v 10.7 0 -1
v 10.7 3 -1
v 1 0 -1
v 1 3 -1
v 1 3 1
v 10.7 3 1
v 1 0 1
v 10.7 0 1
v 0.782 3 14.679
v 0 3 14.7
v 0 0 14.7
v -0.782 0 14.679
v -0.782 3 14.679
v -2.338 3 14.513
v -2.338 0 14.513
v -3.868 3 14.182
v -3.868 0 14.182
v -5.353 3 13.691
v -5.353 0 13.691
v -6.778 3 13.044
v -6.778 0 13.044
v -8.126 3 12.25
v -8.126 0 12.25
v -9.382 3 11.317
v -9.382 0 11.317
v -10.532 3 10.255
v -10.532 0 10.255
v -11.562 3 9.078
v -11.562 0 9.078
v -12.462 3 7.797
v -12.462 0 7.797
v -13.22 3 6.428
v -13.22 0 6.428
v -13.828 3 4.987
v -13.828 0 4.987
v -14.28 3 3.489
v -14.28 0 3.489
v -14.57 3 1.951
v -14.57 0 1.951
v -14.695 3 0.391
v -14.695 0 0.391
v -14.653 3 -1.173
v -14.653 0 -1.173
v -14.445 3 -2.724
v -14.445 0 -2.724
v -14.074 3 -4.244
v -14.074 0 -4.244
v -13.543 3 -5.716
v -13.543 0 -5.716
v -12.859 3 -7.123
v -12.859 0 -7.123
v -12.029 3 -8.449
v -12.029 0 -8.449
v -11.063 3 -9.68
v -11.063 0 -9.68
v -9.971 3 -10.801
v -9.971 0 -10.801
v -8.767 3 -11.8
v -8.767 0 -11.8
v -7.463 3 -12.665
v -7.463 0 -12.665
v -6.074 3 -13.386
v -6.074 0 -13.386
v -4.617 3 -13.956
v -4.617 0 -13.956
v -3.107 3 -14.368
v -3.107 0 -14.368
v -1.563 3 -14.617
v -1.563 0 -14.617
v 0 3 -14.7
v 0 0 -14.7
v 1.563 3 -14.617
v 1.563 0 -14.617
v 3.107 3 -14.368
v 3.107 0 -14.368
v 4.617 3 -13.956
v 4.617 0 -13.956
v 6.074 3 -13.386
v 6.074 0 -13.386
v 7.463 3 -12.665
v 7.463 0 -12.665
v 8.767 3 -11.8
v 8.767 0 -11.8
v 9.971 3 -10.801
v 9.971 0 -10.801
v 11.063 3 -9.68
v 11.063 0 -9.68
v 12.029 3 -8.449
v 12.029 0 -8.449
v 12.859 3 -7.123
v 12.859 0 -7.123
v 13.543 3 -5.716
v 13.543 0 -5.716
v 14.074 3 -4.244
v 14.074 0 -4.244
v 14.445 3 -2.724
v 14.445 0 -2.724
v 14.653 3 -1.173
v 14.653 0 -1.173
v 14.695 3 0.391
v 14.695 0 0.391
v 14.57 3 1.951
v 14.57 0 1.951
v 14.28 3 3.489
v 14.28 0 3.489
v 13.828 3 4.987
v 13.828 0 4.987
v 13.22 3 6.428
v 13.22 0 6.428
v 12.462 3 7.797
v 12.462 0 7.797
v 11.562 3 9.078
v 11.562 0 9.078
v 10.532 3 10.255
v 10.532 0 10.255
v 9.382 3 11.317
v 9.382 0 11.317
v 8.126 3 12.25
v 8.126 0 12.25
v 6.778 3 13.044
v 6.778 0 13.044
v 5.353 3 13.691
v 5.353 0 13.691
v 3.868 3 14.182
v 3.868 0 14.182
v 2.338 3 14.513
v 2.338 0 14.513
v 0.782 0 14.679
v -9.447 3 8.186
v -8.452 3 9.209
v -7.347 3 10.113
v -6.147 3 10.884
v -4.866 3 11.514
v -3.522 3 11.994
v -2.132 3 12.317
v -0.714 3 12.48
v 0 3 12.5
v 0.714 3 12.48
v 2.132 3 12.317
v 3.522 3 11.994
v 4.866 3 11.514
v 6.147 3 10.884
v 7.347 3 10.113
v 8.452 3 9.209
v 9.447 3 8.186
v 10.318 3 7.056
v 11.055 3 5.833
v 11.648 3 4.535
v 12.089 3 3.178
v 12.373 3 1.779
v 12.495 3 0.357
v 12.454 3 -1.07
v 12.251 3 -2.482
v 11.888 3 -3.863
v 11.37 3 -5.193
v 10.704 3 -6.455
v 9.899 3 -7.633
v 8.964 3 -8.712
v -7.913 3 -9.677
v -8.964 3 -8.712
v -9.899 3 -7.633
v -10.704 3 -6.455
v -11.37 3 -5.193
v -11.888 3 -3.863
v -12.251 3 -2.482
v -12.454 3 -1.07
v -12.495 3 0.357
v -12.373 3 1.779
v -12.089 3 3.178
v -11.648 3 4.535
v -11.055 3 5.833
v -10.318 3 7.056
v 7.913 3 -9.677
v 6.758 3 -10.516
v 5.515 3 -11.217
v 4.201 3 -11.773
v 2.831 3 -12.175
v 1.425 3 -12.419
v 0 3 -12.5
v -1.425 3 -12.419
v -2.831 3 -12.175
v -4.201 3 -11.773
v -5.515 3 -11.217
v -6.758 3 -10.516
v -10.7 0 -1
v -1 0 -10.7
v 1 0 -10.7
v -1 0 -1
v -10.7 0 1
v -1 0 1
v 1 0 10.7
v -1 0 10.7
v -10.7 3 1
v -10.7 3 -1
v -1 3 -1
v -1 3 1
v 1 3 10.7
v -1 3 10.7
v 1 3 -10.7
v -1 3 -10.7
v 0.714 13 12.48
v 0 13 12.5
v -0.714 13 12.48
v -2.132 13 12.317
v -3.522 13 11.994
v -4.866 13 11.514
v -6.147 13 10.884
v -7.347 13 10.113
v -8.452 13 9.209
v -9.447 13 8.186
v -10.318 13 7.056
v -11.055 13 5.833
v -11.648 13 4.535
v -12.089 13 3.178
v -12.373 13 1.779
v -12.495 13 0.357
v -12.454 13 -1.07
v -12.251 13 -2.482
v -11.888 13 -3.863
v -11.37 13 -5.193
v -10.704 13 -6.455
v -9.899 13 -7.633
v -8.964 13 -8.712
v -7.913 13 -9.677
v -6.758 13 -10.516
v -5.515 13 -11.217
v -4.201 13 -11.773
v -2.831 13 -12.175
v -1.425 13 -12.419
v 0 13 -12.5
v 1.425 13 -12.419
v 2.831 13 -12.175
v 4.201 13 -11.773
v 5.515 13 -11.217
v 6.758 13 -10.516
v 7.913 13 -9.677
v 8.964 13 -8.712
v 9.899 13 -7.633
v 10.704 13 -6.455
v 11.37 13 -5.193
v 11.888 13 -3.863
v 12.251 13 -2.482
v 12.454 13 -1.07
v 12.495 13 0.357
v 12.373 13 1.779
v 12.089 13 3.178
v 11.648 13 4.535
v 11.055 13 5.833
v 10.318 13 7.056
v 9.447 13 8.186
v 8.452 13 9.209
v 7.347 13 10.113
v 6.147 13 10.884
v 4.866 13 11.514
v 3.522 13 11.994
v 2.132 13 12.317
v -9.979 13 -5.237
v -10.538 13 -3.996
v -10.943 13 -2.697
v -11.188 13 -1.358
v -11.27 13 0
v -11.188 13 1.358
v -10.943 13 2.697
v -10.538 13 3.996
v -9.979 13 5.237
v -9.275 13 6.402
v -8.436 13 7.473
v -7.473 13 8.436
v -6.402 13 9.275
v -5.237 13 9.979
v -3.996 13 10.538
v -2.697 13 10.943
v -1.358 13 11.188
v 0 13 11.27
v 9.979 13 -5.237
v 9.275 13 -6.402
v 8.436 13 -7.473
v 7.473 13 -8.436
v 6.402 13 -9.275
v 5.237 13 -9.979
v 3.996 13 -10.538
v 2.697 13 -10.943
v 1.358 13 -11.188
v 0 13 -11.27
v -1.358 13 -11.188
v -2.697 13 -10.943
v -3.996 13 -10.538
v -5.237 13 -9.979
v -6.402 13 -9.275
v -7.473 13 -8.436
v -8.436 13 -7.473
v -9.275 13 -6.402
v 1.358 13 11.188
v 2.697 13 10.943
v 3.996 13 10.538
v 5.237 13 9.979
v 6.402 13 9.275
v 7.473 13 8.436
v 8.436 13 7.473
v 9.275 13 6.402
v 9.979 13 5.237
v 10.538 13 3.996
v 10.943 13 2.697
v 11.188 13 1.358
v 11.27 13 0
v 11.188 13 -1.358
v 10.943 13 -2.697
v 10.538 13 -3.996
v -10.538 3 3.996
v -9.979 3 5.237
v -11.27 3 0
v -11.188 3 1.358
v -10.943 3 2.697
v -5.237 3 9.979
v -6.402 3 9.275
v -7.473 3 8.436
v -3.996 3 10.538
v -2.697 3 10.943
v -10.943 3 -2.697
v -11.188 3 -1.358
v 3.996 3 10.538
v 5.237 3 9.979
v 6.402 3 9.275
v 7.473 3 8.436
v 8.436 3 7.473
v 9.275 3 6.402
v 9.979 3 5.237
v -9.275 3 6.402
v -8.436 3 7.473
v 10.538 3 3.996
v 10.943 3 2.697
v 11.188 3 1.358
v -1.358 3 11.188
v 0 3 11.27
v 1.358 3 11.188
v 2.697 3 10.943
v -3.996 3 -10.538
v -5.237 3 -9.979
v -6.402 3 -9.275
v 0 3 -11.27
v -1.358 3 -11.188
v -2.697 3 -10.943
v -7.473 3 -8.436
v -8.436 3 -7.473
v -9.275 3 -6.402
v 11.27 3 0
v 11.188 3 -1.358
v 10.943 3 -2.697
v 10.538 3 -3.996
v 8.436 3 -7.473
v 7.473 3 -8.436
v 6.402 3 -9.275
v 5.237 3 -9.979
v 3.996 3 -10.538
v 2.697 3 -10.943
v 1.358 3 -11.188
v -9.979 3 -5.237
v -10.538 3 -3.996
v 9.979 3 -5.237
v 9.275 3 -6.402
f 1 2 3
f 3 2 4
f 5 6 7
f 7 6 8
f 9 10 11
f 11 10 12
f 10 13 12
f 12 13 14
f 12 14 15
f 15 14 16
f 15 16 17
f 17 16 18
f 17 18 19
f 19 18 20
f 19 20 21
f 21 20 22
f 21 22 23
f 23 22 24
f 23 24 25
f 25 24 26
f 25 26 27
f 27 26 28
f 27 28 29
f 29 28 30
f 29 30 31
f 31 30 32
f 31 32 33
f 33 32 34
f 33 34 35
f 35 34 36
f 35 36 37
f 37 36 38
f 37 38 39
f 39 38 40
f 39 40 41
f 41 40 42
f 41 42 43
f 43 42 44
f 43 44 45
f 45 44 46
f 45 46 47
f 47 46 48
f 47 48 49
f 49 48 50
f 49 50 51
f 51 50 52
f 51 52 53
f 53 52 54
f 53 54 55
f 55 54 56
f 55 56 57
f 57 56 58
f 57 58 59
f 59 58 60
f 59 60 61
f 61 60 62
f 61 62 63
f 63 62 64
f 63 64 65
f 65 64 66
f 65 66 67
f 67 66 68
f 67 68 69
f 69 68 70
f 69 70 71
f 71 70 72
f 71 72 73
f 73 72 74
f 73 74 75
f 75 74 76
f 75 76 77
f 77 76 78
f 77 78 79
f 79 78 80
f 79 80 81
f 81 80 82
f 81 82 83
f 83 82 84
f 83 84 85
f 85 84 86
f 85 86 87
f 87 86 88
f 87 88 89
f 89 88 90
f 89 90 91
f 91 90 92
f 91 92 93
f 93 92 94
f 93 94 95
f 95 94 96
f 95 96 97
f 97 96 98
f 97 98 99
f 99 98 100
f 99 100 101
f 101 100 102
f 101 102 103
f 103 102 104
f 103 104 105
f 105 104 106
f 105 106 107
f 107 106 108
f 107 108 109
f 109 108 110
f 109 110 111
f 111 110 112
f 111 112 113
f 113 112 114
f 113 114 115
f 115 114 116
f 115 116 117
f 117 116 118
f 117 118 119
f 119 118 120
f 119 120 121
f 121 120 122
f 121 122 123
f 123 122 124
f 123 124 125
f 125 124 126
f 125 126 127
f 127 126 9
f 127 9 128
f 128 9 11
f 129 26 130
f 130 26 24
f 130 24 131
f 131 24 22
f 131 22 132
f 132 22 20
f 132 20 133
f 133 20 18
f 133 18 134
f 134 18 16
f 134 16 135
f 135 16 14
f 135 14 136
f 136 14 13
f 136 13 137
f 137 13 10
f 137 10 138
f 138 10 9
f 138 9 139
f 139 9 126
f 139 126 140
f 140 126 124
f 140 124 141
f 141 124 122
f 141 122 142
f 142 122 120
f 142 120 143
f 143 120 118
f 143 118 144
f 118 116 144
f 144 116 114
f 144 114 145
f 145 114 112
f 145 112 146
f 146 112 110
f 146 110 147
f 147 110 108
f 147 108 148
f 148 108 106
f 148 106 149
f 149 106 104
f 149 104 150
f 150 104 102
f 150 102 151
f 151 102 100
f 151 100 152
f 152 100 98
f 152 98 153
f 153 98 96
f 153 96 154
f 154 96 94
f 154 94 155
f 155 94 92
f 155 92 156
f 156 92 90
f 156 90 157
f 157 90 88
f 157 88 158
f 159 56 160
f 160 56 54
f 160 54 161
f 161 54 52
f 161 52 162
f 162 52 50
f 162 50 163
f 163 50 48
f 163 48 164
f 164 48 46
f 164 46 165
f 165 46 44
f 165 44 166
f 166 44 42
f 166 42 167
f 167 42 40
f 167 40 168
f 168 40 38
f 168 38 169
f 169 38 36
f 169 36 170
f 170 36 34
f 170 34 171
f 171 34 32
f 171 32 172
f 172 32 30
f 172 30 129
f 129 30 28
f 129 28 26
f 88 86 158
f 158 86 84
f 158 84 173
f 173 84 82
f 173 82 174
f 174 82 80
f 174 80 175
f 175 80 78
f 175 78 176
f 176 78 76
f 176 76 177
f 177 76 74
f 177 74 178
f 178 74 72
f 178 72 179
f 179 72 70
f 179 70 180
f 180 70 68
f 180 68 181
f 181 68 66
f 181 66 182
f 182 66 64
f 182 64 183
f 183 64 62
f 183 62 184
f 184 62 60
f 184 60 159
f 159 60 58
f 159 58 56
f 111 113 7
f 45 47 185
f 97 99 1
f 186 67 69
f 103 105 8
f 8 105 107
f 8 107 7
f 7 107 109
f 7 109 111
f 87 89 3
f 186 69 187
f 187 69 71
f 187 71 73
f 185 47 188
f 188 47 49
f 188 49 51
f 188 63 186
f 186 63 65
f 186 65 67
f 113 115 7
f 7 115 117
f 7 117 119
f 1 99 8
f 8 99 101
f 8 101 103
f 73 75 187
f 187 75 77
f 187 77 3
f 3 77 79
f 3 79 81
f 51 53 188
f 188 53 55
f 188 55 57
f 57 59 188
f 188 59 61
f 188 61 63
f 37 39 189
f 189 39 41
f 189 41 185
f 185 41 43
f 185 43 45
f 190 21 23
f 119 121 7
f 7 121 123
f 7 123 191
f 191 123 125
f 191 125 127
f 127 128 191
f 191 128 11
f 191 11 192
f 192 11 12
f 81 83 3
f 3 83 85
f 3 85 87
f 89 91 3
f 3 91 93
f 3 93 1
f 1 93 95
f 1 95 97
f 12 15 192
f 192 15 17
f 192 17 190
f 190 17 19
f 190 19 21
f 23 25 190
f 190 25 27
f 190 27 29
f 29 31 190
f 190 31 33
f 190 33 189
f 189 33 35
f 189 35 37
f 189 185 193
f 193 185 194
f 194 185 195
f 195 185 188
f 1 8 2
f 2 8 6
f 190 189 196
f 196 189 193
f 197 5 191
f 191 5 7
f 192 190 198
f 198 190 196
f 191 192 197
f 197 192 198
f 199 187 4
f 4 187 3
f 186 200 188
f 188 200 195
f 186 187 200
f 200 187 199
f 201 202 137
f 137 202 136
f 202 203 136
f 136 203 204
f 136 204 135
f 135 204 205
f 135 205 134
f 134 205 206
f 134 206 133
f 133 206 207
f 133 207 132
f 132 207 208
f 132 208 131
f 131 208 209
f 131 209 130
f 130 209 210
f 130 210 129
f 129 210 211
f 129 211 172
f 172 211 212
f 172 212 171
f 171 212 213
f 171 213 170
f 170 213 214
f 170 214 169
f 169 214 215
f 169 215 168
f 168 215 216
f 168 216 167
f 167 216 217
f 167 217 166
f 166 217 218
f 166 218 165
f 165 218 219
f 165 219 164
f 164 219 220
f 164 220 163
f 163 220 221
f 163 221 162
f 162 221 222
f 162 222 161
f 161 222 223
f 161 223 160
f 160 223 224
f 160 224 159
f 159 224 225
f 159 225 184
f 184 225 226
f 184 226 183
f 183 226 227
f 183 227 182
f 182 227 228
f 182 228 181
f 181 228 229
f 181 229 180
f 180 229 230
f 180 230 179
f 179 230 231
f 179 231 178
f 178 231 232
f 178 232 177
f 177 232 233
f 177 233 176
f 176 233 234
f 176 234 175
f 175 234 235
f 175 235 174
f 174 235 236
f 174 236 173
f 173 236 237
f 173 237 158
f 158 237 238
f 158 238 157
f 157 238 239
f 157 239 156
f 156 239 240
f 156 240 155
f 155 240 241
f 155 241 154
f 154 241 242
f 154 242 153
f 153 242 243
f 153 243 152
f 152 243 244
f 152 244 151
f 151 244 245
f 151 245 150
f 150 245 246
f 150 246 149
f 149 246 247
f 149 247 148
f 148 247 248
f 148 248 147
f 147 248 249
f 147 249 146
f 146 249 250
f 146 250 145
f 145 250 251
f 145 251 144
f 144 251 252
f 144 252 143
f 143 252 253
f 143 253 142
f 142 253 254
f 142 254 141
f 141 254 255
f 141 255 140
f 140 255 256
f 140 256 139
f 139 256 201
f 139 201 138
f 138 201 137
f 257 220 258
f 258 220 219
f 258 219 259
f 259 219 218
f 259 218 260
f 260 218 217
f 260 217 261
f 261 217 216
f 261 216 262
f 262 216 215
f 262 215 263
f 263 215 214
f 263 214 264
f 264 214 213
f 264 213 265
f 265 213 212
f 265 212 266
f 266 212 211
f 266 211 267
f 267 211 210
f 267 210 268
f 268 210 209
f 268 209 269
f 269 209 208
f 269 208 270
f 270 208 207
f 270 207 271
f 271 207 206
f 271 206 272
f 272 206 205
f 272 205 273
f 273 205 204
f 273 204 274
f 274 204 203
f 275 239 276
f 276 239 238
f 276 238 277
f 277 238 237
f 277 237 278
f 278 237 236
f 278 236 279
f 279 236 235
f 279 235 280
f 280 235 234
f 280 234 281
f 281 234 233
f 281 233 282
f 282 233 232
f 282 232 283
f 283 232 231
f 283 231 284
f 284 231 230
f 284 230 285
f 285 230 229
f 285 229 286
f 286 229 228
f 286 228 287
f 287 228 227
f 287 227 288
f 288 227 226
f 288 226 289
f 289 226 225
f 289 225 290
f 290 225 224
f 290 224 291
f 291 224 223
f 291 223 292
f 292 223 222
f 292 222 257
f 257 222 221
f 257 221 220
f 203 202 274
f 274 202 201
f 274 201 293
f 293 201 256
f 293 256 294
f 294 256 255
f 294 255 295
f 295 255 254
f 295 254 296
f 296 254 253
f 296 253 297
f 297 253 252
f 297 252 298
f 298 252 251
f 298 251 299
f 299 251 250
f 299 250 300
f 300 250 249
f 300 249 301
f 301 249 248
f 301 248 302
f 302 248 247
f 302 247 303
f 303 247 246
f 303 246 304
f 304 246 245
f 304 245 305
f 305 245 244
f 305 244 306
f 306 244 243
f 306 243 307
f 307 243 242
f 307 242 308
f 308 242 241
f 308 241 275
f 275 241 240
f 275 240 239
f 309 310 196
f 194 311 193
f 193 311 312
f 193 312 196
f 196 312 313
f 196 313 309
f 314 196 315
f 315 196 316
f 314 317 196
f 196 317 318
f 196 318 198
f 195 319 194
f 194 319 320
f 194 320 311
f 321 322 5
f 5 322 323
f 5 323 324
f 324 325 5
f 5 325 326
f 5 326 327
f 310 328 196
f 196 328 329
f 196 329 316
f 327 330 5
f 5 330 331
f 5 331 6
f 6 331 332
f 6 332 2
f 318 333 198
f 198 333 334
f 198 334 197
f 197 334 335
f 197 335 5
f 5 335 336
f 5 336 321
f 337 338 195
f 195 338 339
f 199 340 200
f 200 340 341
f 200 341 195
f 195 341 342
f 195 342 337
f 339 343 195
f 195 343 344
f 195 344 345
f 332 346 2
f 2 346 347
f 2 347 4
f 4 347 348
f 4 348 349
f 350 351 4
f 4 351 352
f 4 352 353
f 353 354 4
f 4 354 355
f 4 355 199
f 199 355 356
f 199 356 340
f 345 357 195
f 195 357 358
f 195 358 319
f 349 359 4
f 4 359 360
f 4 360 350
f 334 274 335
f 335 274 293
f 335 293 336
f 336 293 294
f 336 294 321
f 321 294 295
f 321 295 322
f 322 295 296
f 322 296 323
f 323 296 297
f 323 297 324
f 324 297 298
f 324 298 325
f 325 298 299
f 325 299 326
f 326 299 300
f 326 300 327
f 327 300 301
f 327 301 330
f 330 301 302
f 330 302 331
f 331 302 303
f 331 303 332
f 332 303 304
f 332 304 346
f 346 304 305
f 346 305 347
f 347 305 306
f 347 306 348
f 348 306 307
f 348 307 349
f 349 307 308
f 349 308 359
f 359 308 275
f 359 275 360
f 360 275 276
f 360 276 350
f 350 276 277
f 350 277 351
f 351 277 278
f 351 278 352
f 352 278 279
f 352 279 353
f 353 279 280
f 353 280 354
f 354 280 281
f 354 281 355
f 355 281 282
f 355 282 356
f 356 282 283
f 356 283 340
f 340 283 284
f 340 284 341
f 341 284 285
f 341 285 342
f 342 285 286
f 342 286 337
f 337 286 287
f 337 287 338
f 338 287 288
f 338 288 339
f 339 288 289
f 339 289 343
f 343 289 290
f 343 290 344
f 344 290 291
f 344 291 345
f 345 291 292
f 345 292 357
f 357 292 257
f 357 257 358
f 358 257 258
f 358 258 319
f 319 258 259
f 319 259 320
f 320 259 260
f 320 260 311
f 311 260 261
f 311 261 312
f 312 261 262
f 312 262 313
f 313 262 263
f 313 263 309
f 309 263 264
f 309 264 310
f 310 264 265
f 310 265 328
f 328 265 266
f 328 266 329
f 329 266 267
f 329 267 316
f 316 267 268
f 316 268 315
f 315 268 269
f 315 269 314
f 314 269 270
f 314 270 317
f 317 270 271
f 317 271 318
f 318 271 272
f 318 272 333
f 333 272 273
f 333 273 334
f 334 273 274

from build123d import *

# Parameters (mm, degrees)
SKETCH1_R           = 14.7
BOSS_EXTRUDE1_DEPTH = 3
SKETCH3_W           = 21.4
SKETCH3_H           = 2
CUT_EXTRUDE1_DEPTH  = 3
SKETCH4_W           = 2
SKETCH4_H           = 21.4
CUT_EXTRUDE2_DEPTH  = 3
SKETCH5_R           = 12.5
BOSS_EXTRUDE3_DEPTH = 10
SKETCH6_R           = 11.27
CUT_EXTRUDE3_DEPTH  = 10


with BuildPart() as part:
    # Sketch1 → Boss-Extrude1 (new body)
    with BuildSketch(Plane(origin=(0, 0, 0), x_dir=(1, 0, 0), z_dir=(0, 1, 0))):
        with Locations(Location((0, 0, 0), (0, 0, 270))):
            Circle(SKETCH1_R)
    extrude(amount=BOSS_EXTRUDE1_DEPTH)

    # Sketch3 → Cut-Extrude1 (cut)
    with BuildSketch(Plane(origin=(0, 3, 0), x_dir=(1, 0, 0), z_dir=(0, 1, 0))):
        Rectangle(SKETCH3_W, SKETCH3_H)
    extrude(amount=-CUT_EXTRUDE1_DEPTH, mode=Mode.SUBTRACT)

    # Sketch4 → Cut-Extrude2 (cut)
    with BuildSketch(Plane(origin=(0, 3, 0), x_dir=(1, 0, 0), z_dir=(0, 1, 0))):
        Rectangle(SKETCH4_W, SKETCH4_H)
    extrude(amount=-CUT_EXTRUDE2_DEPTH, mode=Mode.SUBTRACT)

    # Sketch5 → Boss-Extrude3 (add)
    with BuildSketch(Plane(origin=(0, 3, 0), x_dir=(1, 0, 0), z_dir=(0, 1, 0))):
        with Locations(Location((0, 0, 0), (0, 0, 270))):
            Circle(SKETCH5_R)
    extrude(amount=BOSS_EXTRUDE3_DEPTH)

    # Sketch6 → Cut-Extrude3 (cut)
    with BuildSketch(Plane(origin=(0, 13, 0), x_dir=(1, 0, 0), z_dir=(0, 1, 0))):
        with Locations(Location((0, 0, 0), (0, 0, 270))):
            Circle(SKETCH6_R)
    extrude(amount=-CUT_EXTRUDE3_DEPTH, mode=Mode.SUBTRACT)


solid = part.part
